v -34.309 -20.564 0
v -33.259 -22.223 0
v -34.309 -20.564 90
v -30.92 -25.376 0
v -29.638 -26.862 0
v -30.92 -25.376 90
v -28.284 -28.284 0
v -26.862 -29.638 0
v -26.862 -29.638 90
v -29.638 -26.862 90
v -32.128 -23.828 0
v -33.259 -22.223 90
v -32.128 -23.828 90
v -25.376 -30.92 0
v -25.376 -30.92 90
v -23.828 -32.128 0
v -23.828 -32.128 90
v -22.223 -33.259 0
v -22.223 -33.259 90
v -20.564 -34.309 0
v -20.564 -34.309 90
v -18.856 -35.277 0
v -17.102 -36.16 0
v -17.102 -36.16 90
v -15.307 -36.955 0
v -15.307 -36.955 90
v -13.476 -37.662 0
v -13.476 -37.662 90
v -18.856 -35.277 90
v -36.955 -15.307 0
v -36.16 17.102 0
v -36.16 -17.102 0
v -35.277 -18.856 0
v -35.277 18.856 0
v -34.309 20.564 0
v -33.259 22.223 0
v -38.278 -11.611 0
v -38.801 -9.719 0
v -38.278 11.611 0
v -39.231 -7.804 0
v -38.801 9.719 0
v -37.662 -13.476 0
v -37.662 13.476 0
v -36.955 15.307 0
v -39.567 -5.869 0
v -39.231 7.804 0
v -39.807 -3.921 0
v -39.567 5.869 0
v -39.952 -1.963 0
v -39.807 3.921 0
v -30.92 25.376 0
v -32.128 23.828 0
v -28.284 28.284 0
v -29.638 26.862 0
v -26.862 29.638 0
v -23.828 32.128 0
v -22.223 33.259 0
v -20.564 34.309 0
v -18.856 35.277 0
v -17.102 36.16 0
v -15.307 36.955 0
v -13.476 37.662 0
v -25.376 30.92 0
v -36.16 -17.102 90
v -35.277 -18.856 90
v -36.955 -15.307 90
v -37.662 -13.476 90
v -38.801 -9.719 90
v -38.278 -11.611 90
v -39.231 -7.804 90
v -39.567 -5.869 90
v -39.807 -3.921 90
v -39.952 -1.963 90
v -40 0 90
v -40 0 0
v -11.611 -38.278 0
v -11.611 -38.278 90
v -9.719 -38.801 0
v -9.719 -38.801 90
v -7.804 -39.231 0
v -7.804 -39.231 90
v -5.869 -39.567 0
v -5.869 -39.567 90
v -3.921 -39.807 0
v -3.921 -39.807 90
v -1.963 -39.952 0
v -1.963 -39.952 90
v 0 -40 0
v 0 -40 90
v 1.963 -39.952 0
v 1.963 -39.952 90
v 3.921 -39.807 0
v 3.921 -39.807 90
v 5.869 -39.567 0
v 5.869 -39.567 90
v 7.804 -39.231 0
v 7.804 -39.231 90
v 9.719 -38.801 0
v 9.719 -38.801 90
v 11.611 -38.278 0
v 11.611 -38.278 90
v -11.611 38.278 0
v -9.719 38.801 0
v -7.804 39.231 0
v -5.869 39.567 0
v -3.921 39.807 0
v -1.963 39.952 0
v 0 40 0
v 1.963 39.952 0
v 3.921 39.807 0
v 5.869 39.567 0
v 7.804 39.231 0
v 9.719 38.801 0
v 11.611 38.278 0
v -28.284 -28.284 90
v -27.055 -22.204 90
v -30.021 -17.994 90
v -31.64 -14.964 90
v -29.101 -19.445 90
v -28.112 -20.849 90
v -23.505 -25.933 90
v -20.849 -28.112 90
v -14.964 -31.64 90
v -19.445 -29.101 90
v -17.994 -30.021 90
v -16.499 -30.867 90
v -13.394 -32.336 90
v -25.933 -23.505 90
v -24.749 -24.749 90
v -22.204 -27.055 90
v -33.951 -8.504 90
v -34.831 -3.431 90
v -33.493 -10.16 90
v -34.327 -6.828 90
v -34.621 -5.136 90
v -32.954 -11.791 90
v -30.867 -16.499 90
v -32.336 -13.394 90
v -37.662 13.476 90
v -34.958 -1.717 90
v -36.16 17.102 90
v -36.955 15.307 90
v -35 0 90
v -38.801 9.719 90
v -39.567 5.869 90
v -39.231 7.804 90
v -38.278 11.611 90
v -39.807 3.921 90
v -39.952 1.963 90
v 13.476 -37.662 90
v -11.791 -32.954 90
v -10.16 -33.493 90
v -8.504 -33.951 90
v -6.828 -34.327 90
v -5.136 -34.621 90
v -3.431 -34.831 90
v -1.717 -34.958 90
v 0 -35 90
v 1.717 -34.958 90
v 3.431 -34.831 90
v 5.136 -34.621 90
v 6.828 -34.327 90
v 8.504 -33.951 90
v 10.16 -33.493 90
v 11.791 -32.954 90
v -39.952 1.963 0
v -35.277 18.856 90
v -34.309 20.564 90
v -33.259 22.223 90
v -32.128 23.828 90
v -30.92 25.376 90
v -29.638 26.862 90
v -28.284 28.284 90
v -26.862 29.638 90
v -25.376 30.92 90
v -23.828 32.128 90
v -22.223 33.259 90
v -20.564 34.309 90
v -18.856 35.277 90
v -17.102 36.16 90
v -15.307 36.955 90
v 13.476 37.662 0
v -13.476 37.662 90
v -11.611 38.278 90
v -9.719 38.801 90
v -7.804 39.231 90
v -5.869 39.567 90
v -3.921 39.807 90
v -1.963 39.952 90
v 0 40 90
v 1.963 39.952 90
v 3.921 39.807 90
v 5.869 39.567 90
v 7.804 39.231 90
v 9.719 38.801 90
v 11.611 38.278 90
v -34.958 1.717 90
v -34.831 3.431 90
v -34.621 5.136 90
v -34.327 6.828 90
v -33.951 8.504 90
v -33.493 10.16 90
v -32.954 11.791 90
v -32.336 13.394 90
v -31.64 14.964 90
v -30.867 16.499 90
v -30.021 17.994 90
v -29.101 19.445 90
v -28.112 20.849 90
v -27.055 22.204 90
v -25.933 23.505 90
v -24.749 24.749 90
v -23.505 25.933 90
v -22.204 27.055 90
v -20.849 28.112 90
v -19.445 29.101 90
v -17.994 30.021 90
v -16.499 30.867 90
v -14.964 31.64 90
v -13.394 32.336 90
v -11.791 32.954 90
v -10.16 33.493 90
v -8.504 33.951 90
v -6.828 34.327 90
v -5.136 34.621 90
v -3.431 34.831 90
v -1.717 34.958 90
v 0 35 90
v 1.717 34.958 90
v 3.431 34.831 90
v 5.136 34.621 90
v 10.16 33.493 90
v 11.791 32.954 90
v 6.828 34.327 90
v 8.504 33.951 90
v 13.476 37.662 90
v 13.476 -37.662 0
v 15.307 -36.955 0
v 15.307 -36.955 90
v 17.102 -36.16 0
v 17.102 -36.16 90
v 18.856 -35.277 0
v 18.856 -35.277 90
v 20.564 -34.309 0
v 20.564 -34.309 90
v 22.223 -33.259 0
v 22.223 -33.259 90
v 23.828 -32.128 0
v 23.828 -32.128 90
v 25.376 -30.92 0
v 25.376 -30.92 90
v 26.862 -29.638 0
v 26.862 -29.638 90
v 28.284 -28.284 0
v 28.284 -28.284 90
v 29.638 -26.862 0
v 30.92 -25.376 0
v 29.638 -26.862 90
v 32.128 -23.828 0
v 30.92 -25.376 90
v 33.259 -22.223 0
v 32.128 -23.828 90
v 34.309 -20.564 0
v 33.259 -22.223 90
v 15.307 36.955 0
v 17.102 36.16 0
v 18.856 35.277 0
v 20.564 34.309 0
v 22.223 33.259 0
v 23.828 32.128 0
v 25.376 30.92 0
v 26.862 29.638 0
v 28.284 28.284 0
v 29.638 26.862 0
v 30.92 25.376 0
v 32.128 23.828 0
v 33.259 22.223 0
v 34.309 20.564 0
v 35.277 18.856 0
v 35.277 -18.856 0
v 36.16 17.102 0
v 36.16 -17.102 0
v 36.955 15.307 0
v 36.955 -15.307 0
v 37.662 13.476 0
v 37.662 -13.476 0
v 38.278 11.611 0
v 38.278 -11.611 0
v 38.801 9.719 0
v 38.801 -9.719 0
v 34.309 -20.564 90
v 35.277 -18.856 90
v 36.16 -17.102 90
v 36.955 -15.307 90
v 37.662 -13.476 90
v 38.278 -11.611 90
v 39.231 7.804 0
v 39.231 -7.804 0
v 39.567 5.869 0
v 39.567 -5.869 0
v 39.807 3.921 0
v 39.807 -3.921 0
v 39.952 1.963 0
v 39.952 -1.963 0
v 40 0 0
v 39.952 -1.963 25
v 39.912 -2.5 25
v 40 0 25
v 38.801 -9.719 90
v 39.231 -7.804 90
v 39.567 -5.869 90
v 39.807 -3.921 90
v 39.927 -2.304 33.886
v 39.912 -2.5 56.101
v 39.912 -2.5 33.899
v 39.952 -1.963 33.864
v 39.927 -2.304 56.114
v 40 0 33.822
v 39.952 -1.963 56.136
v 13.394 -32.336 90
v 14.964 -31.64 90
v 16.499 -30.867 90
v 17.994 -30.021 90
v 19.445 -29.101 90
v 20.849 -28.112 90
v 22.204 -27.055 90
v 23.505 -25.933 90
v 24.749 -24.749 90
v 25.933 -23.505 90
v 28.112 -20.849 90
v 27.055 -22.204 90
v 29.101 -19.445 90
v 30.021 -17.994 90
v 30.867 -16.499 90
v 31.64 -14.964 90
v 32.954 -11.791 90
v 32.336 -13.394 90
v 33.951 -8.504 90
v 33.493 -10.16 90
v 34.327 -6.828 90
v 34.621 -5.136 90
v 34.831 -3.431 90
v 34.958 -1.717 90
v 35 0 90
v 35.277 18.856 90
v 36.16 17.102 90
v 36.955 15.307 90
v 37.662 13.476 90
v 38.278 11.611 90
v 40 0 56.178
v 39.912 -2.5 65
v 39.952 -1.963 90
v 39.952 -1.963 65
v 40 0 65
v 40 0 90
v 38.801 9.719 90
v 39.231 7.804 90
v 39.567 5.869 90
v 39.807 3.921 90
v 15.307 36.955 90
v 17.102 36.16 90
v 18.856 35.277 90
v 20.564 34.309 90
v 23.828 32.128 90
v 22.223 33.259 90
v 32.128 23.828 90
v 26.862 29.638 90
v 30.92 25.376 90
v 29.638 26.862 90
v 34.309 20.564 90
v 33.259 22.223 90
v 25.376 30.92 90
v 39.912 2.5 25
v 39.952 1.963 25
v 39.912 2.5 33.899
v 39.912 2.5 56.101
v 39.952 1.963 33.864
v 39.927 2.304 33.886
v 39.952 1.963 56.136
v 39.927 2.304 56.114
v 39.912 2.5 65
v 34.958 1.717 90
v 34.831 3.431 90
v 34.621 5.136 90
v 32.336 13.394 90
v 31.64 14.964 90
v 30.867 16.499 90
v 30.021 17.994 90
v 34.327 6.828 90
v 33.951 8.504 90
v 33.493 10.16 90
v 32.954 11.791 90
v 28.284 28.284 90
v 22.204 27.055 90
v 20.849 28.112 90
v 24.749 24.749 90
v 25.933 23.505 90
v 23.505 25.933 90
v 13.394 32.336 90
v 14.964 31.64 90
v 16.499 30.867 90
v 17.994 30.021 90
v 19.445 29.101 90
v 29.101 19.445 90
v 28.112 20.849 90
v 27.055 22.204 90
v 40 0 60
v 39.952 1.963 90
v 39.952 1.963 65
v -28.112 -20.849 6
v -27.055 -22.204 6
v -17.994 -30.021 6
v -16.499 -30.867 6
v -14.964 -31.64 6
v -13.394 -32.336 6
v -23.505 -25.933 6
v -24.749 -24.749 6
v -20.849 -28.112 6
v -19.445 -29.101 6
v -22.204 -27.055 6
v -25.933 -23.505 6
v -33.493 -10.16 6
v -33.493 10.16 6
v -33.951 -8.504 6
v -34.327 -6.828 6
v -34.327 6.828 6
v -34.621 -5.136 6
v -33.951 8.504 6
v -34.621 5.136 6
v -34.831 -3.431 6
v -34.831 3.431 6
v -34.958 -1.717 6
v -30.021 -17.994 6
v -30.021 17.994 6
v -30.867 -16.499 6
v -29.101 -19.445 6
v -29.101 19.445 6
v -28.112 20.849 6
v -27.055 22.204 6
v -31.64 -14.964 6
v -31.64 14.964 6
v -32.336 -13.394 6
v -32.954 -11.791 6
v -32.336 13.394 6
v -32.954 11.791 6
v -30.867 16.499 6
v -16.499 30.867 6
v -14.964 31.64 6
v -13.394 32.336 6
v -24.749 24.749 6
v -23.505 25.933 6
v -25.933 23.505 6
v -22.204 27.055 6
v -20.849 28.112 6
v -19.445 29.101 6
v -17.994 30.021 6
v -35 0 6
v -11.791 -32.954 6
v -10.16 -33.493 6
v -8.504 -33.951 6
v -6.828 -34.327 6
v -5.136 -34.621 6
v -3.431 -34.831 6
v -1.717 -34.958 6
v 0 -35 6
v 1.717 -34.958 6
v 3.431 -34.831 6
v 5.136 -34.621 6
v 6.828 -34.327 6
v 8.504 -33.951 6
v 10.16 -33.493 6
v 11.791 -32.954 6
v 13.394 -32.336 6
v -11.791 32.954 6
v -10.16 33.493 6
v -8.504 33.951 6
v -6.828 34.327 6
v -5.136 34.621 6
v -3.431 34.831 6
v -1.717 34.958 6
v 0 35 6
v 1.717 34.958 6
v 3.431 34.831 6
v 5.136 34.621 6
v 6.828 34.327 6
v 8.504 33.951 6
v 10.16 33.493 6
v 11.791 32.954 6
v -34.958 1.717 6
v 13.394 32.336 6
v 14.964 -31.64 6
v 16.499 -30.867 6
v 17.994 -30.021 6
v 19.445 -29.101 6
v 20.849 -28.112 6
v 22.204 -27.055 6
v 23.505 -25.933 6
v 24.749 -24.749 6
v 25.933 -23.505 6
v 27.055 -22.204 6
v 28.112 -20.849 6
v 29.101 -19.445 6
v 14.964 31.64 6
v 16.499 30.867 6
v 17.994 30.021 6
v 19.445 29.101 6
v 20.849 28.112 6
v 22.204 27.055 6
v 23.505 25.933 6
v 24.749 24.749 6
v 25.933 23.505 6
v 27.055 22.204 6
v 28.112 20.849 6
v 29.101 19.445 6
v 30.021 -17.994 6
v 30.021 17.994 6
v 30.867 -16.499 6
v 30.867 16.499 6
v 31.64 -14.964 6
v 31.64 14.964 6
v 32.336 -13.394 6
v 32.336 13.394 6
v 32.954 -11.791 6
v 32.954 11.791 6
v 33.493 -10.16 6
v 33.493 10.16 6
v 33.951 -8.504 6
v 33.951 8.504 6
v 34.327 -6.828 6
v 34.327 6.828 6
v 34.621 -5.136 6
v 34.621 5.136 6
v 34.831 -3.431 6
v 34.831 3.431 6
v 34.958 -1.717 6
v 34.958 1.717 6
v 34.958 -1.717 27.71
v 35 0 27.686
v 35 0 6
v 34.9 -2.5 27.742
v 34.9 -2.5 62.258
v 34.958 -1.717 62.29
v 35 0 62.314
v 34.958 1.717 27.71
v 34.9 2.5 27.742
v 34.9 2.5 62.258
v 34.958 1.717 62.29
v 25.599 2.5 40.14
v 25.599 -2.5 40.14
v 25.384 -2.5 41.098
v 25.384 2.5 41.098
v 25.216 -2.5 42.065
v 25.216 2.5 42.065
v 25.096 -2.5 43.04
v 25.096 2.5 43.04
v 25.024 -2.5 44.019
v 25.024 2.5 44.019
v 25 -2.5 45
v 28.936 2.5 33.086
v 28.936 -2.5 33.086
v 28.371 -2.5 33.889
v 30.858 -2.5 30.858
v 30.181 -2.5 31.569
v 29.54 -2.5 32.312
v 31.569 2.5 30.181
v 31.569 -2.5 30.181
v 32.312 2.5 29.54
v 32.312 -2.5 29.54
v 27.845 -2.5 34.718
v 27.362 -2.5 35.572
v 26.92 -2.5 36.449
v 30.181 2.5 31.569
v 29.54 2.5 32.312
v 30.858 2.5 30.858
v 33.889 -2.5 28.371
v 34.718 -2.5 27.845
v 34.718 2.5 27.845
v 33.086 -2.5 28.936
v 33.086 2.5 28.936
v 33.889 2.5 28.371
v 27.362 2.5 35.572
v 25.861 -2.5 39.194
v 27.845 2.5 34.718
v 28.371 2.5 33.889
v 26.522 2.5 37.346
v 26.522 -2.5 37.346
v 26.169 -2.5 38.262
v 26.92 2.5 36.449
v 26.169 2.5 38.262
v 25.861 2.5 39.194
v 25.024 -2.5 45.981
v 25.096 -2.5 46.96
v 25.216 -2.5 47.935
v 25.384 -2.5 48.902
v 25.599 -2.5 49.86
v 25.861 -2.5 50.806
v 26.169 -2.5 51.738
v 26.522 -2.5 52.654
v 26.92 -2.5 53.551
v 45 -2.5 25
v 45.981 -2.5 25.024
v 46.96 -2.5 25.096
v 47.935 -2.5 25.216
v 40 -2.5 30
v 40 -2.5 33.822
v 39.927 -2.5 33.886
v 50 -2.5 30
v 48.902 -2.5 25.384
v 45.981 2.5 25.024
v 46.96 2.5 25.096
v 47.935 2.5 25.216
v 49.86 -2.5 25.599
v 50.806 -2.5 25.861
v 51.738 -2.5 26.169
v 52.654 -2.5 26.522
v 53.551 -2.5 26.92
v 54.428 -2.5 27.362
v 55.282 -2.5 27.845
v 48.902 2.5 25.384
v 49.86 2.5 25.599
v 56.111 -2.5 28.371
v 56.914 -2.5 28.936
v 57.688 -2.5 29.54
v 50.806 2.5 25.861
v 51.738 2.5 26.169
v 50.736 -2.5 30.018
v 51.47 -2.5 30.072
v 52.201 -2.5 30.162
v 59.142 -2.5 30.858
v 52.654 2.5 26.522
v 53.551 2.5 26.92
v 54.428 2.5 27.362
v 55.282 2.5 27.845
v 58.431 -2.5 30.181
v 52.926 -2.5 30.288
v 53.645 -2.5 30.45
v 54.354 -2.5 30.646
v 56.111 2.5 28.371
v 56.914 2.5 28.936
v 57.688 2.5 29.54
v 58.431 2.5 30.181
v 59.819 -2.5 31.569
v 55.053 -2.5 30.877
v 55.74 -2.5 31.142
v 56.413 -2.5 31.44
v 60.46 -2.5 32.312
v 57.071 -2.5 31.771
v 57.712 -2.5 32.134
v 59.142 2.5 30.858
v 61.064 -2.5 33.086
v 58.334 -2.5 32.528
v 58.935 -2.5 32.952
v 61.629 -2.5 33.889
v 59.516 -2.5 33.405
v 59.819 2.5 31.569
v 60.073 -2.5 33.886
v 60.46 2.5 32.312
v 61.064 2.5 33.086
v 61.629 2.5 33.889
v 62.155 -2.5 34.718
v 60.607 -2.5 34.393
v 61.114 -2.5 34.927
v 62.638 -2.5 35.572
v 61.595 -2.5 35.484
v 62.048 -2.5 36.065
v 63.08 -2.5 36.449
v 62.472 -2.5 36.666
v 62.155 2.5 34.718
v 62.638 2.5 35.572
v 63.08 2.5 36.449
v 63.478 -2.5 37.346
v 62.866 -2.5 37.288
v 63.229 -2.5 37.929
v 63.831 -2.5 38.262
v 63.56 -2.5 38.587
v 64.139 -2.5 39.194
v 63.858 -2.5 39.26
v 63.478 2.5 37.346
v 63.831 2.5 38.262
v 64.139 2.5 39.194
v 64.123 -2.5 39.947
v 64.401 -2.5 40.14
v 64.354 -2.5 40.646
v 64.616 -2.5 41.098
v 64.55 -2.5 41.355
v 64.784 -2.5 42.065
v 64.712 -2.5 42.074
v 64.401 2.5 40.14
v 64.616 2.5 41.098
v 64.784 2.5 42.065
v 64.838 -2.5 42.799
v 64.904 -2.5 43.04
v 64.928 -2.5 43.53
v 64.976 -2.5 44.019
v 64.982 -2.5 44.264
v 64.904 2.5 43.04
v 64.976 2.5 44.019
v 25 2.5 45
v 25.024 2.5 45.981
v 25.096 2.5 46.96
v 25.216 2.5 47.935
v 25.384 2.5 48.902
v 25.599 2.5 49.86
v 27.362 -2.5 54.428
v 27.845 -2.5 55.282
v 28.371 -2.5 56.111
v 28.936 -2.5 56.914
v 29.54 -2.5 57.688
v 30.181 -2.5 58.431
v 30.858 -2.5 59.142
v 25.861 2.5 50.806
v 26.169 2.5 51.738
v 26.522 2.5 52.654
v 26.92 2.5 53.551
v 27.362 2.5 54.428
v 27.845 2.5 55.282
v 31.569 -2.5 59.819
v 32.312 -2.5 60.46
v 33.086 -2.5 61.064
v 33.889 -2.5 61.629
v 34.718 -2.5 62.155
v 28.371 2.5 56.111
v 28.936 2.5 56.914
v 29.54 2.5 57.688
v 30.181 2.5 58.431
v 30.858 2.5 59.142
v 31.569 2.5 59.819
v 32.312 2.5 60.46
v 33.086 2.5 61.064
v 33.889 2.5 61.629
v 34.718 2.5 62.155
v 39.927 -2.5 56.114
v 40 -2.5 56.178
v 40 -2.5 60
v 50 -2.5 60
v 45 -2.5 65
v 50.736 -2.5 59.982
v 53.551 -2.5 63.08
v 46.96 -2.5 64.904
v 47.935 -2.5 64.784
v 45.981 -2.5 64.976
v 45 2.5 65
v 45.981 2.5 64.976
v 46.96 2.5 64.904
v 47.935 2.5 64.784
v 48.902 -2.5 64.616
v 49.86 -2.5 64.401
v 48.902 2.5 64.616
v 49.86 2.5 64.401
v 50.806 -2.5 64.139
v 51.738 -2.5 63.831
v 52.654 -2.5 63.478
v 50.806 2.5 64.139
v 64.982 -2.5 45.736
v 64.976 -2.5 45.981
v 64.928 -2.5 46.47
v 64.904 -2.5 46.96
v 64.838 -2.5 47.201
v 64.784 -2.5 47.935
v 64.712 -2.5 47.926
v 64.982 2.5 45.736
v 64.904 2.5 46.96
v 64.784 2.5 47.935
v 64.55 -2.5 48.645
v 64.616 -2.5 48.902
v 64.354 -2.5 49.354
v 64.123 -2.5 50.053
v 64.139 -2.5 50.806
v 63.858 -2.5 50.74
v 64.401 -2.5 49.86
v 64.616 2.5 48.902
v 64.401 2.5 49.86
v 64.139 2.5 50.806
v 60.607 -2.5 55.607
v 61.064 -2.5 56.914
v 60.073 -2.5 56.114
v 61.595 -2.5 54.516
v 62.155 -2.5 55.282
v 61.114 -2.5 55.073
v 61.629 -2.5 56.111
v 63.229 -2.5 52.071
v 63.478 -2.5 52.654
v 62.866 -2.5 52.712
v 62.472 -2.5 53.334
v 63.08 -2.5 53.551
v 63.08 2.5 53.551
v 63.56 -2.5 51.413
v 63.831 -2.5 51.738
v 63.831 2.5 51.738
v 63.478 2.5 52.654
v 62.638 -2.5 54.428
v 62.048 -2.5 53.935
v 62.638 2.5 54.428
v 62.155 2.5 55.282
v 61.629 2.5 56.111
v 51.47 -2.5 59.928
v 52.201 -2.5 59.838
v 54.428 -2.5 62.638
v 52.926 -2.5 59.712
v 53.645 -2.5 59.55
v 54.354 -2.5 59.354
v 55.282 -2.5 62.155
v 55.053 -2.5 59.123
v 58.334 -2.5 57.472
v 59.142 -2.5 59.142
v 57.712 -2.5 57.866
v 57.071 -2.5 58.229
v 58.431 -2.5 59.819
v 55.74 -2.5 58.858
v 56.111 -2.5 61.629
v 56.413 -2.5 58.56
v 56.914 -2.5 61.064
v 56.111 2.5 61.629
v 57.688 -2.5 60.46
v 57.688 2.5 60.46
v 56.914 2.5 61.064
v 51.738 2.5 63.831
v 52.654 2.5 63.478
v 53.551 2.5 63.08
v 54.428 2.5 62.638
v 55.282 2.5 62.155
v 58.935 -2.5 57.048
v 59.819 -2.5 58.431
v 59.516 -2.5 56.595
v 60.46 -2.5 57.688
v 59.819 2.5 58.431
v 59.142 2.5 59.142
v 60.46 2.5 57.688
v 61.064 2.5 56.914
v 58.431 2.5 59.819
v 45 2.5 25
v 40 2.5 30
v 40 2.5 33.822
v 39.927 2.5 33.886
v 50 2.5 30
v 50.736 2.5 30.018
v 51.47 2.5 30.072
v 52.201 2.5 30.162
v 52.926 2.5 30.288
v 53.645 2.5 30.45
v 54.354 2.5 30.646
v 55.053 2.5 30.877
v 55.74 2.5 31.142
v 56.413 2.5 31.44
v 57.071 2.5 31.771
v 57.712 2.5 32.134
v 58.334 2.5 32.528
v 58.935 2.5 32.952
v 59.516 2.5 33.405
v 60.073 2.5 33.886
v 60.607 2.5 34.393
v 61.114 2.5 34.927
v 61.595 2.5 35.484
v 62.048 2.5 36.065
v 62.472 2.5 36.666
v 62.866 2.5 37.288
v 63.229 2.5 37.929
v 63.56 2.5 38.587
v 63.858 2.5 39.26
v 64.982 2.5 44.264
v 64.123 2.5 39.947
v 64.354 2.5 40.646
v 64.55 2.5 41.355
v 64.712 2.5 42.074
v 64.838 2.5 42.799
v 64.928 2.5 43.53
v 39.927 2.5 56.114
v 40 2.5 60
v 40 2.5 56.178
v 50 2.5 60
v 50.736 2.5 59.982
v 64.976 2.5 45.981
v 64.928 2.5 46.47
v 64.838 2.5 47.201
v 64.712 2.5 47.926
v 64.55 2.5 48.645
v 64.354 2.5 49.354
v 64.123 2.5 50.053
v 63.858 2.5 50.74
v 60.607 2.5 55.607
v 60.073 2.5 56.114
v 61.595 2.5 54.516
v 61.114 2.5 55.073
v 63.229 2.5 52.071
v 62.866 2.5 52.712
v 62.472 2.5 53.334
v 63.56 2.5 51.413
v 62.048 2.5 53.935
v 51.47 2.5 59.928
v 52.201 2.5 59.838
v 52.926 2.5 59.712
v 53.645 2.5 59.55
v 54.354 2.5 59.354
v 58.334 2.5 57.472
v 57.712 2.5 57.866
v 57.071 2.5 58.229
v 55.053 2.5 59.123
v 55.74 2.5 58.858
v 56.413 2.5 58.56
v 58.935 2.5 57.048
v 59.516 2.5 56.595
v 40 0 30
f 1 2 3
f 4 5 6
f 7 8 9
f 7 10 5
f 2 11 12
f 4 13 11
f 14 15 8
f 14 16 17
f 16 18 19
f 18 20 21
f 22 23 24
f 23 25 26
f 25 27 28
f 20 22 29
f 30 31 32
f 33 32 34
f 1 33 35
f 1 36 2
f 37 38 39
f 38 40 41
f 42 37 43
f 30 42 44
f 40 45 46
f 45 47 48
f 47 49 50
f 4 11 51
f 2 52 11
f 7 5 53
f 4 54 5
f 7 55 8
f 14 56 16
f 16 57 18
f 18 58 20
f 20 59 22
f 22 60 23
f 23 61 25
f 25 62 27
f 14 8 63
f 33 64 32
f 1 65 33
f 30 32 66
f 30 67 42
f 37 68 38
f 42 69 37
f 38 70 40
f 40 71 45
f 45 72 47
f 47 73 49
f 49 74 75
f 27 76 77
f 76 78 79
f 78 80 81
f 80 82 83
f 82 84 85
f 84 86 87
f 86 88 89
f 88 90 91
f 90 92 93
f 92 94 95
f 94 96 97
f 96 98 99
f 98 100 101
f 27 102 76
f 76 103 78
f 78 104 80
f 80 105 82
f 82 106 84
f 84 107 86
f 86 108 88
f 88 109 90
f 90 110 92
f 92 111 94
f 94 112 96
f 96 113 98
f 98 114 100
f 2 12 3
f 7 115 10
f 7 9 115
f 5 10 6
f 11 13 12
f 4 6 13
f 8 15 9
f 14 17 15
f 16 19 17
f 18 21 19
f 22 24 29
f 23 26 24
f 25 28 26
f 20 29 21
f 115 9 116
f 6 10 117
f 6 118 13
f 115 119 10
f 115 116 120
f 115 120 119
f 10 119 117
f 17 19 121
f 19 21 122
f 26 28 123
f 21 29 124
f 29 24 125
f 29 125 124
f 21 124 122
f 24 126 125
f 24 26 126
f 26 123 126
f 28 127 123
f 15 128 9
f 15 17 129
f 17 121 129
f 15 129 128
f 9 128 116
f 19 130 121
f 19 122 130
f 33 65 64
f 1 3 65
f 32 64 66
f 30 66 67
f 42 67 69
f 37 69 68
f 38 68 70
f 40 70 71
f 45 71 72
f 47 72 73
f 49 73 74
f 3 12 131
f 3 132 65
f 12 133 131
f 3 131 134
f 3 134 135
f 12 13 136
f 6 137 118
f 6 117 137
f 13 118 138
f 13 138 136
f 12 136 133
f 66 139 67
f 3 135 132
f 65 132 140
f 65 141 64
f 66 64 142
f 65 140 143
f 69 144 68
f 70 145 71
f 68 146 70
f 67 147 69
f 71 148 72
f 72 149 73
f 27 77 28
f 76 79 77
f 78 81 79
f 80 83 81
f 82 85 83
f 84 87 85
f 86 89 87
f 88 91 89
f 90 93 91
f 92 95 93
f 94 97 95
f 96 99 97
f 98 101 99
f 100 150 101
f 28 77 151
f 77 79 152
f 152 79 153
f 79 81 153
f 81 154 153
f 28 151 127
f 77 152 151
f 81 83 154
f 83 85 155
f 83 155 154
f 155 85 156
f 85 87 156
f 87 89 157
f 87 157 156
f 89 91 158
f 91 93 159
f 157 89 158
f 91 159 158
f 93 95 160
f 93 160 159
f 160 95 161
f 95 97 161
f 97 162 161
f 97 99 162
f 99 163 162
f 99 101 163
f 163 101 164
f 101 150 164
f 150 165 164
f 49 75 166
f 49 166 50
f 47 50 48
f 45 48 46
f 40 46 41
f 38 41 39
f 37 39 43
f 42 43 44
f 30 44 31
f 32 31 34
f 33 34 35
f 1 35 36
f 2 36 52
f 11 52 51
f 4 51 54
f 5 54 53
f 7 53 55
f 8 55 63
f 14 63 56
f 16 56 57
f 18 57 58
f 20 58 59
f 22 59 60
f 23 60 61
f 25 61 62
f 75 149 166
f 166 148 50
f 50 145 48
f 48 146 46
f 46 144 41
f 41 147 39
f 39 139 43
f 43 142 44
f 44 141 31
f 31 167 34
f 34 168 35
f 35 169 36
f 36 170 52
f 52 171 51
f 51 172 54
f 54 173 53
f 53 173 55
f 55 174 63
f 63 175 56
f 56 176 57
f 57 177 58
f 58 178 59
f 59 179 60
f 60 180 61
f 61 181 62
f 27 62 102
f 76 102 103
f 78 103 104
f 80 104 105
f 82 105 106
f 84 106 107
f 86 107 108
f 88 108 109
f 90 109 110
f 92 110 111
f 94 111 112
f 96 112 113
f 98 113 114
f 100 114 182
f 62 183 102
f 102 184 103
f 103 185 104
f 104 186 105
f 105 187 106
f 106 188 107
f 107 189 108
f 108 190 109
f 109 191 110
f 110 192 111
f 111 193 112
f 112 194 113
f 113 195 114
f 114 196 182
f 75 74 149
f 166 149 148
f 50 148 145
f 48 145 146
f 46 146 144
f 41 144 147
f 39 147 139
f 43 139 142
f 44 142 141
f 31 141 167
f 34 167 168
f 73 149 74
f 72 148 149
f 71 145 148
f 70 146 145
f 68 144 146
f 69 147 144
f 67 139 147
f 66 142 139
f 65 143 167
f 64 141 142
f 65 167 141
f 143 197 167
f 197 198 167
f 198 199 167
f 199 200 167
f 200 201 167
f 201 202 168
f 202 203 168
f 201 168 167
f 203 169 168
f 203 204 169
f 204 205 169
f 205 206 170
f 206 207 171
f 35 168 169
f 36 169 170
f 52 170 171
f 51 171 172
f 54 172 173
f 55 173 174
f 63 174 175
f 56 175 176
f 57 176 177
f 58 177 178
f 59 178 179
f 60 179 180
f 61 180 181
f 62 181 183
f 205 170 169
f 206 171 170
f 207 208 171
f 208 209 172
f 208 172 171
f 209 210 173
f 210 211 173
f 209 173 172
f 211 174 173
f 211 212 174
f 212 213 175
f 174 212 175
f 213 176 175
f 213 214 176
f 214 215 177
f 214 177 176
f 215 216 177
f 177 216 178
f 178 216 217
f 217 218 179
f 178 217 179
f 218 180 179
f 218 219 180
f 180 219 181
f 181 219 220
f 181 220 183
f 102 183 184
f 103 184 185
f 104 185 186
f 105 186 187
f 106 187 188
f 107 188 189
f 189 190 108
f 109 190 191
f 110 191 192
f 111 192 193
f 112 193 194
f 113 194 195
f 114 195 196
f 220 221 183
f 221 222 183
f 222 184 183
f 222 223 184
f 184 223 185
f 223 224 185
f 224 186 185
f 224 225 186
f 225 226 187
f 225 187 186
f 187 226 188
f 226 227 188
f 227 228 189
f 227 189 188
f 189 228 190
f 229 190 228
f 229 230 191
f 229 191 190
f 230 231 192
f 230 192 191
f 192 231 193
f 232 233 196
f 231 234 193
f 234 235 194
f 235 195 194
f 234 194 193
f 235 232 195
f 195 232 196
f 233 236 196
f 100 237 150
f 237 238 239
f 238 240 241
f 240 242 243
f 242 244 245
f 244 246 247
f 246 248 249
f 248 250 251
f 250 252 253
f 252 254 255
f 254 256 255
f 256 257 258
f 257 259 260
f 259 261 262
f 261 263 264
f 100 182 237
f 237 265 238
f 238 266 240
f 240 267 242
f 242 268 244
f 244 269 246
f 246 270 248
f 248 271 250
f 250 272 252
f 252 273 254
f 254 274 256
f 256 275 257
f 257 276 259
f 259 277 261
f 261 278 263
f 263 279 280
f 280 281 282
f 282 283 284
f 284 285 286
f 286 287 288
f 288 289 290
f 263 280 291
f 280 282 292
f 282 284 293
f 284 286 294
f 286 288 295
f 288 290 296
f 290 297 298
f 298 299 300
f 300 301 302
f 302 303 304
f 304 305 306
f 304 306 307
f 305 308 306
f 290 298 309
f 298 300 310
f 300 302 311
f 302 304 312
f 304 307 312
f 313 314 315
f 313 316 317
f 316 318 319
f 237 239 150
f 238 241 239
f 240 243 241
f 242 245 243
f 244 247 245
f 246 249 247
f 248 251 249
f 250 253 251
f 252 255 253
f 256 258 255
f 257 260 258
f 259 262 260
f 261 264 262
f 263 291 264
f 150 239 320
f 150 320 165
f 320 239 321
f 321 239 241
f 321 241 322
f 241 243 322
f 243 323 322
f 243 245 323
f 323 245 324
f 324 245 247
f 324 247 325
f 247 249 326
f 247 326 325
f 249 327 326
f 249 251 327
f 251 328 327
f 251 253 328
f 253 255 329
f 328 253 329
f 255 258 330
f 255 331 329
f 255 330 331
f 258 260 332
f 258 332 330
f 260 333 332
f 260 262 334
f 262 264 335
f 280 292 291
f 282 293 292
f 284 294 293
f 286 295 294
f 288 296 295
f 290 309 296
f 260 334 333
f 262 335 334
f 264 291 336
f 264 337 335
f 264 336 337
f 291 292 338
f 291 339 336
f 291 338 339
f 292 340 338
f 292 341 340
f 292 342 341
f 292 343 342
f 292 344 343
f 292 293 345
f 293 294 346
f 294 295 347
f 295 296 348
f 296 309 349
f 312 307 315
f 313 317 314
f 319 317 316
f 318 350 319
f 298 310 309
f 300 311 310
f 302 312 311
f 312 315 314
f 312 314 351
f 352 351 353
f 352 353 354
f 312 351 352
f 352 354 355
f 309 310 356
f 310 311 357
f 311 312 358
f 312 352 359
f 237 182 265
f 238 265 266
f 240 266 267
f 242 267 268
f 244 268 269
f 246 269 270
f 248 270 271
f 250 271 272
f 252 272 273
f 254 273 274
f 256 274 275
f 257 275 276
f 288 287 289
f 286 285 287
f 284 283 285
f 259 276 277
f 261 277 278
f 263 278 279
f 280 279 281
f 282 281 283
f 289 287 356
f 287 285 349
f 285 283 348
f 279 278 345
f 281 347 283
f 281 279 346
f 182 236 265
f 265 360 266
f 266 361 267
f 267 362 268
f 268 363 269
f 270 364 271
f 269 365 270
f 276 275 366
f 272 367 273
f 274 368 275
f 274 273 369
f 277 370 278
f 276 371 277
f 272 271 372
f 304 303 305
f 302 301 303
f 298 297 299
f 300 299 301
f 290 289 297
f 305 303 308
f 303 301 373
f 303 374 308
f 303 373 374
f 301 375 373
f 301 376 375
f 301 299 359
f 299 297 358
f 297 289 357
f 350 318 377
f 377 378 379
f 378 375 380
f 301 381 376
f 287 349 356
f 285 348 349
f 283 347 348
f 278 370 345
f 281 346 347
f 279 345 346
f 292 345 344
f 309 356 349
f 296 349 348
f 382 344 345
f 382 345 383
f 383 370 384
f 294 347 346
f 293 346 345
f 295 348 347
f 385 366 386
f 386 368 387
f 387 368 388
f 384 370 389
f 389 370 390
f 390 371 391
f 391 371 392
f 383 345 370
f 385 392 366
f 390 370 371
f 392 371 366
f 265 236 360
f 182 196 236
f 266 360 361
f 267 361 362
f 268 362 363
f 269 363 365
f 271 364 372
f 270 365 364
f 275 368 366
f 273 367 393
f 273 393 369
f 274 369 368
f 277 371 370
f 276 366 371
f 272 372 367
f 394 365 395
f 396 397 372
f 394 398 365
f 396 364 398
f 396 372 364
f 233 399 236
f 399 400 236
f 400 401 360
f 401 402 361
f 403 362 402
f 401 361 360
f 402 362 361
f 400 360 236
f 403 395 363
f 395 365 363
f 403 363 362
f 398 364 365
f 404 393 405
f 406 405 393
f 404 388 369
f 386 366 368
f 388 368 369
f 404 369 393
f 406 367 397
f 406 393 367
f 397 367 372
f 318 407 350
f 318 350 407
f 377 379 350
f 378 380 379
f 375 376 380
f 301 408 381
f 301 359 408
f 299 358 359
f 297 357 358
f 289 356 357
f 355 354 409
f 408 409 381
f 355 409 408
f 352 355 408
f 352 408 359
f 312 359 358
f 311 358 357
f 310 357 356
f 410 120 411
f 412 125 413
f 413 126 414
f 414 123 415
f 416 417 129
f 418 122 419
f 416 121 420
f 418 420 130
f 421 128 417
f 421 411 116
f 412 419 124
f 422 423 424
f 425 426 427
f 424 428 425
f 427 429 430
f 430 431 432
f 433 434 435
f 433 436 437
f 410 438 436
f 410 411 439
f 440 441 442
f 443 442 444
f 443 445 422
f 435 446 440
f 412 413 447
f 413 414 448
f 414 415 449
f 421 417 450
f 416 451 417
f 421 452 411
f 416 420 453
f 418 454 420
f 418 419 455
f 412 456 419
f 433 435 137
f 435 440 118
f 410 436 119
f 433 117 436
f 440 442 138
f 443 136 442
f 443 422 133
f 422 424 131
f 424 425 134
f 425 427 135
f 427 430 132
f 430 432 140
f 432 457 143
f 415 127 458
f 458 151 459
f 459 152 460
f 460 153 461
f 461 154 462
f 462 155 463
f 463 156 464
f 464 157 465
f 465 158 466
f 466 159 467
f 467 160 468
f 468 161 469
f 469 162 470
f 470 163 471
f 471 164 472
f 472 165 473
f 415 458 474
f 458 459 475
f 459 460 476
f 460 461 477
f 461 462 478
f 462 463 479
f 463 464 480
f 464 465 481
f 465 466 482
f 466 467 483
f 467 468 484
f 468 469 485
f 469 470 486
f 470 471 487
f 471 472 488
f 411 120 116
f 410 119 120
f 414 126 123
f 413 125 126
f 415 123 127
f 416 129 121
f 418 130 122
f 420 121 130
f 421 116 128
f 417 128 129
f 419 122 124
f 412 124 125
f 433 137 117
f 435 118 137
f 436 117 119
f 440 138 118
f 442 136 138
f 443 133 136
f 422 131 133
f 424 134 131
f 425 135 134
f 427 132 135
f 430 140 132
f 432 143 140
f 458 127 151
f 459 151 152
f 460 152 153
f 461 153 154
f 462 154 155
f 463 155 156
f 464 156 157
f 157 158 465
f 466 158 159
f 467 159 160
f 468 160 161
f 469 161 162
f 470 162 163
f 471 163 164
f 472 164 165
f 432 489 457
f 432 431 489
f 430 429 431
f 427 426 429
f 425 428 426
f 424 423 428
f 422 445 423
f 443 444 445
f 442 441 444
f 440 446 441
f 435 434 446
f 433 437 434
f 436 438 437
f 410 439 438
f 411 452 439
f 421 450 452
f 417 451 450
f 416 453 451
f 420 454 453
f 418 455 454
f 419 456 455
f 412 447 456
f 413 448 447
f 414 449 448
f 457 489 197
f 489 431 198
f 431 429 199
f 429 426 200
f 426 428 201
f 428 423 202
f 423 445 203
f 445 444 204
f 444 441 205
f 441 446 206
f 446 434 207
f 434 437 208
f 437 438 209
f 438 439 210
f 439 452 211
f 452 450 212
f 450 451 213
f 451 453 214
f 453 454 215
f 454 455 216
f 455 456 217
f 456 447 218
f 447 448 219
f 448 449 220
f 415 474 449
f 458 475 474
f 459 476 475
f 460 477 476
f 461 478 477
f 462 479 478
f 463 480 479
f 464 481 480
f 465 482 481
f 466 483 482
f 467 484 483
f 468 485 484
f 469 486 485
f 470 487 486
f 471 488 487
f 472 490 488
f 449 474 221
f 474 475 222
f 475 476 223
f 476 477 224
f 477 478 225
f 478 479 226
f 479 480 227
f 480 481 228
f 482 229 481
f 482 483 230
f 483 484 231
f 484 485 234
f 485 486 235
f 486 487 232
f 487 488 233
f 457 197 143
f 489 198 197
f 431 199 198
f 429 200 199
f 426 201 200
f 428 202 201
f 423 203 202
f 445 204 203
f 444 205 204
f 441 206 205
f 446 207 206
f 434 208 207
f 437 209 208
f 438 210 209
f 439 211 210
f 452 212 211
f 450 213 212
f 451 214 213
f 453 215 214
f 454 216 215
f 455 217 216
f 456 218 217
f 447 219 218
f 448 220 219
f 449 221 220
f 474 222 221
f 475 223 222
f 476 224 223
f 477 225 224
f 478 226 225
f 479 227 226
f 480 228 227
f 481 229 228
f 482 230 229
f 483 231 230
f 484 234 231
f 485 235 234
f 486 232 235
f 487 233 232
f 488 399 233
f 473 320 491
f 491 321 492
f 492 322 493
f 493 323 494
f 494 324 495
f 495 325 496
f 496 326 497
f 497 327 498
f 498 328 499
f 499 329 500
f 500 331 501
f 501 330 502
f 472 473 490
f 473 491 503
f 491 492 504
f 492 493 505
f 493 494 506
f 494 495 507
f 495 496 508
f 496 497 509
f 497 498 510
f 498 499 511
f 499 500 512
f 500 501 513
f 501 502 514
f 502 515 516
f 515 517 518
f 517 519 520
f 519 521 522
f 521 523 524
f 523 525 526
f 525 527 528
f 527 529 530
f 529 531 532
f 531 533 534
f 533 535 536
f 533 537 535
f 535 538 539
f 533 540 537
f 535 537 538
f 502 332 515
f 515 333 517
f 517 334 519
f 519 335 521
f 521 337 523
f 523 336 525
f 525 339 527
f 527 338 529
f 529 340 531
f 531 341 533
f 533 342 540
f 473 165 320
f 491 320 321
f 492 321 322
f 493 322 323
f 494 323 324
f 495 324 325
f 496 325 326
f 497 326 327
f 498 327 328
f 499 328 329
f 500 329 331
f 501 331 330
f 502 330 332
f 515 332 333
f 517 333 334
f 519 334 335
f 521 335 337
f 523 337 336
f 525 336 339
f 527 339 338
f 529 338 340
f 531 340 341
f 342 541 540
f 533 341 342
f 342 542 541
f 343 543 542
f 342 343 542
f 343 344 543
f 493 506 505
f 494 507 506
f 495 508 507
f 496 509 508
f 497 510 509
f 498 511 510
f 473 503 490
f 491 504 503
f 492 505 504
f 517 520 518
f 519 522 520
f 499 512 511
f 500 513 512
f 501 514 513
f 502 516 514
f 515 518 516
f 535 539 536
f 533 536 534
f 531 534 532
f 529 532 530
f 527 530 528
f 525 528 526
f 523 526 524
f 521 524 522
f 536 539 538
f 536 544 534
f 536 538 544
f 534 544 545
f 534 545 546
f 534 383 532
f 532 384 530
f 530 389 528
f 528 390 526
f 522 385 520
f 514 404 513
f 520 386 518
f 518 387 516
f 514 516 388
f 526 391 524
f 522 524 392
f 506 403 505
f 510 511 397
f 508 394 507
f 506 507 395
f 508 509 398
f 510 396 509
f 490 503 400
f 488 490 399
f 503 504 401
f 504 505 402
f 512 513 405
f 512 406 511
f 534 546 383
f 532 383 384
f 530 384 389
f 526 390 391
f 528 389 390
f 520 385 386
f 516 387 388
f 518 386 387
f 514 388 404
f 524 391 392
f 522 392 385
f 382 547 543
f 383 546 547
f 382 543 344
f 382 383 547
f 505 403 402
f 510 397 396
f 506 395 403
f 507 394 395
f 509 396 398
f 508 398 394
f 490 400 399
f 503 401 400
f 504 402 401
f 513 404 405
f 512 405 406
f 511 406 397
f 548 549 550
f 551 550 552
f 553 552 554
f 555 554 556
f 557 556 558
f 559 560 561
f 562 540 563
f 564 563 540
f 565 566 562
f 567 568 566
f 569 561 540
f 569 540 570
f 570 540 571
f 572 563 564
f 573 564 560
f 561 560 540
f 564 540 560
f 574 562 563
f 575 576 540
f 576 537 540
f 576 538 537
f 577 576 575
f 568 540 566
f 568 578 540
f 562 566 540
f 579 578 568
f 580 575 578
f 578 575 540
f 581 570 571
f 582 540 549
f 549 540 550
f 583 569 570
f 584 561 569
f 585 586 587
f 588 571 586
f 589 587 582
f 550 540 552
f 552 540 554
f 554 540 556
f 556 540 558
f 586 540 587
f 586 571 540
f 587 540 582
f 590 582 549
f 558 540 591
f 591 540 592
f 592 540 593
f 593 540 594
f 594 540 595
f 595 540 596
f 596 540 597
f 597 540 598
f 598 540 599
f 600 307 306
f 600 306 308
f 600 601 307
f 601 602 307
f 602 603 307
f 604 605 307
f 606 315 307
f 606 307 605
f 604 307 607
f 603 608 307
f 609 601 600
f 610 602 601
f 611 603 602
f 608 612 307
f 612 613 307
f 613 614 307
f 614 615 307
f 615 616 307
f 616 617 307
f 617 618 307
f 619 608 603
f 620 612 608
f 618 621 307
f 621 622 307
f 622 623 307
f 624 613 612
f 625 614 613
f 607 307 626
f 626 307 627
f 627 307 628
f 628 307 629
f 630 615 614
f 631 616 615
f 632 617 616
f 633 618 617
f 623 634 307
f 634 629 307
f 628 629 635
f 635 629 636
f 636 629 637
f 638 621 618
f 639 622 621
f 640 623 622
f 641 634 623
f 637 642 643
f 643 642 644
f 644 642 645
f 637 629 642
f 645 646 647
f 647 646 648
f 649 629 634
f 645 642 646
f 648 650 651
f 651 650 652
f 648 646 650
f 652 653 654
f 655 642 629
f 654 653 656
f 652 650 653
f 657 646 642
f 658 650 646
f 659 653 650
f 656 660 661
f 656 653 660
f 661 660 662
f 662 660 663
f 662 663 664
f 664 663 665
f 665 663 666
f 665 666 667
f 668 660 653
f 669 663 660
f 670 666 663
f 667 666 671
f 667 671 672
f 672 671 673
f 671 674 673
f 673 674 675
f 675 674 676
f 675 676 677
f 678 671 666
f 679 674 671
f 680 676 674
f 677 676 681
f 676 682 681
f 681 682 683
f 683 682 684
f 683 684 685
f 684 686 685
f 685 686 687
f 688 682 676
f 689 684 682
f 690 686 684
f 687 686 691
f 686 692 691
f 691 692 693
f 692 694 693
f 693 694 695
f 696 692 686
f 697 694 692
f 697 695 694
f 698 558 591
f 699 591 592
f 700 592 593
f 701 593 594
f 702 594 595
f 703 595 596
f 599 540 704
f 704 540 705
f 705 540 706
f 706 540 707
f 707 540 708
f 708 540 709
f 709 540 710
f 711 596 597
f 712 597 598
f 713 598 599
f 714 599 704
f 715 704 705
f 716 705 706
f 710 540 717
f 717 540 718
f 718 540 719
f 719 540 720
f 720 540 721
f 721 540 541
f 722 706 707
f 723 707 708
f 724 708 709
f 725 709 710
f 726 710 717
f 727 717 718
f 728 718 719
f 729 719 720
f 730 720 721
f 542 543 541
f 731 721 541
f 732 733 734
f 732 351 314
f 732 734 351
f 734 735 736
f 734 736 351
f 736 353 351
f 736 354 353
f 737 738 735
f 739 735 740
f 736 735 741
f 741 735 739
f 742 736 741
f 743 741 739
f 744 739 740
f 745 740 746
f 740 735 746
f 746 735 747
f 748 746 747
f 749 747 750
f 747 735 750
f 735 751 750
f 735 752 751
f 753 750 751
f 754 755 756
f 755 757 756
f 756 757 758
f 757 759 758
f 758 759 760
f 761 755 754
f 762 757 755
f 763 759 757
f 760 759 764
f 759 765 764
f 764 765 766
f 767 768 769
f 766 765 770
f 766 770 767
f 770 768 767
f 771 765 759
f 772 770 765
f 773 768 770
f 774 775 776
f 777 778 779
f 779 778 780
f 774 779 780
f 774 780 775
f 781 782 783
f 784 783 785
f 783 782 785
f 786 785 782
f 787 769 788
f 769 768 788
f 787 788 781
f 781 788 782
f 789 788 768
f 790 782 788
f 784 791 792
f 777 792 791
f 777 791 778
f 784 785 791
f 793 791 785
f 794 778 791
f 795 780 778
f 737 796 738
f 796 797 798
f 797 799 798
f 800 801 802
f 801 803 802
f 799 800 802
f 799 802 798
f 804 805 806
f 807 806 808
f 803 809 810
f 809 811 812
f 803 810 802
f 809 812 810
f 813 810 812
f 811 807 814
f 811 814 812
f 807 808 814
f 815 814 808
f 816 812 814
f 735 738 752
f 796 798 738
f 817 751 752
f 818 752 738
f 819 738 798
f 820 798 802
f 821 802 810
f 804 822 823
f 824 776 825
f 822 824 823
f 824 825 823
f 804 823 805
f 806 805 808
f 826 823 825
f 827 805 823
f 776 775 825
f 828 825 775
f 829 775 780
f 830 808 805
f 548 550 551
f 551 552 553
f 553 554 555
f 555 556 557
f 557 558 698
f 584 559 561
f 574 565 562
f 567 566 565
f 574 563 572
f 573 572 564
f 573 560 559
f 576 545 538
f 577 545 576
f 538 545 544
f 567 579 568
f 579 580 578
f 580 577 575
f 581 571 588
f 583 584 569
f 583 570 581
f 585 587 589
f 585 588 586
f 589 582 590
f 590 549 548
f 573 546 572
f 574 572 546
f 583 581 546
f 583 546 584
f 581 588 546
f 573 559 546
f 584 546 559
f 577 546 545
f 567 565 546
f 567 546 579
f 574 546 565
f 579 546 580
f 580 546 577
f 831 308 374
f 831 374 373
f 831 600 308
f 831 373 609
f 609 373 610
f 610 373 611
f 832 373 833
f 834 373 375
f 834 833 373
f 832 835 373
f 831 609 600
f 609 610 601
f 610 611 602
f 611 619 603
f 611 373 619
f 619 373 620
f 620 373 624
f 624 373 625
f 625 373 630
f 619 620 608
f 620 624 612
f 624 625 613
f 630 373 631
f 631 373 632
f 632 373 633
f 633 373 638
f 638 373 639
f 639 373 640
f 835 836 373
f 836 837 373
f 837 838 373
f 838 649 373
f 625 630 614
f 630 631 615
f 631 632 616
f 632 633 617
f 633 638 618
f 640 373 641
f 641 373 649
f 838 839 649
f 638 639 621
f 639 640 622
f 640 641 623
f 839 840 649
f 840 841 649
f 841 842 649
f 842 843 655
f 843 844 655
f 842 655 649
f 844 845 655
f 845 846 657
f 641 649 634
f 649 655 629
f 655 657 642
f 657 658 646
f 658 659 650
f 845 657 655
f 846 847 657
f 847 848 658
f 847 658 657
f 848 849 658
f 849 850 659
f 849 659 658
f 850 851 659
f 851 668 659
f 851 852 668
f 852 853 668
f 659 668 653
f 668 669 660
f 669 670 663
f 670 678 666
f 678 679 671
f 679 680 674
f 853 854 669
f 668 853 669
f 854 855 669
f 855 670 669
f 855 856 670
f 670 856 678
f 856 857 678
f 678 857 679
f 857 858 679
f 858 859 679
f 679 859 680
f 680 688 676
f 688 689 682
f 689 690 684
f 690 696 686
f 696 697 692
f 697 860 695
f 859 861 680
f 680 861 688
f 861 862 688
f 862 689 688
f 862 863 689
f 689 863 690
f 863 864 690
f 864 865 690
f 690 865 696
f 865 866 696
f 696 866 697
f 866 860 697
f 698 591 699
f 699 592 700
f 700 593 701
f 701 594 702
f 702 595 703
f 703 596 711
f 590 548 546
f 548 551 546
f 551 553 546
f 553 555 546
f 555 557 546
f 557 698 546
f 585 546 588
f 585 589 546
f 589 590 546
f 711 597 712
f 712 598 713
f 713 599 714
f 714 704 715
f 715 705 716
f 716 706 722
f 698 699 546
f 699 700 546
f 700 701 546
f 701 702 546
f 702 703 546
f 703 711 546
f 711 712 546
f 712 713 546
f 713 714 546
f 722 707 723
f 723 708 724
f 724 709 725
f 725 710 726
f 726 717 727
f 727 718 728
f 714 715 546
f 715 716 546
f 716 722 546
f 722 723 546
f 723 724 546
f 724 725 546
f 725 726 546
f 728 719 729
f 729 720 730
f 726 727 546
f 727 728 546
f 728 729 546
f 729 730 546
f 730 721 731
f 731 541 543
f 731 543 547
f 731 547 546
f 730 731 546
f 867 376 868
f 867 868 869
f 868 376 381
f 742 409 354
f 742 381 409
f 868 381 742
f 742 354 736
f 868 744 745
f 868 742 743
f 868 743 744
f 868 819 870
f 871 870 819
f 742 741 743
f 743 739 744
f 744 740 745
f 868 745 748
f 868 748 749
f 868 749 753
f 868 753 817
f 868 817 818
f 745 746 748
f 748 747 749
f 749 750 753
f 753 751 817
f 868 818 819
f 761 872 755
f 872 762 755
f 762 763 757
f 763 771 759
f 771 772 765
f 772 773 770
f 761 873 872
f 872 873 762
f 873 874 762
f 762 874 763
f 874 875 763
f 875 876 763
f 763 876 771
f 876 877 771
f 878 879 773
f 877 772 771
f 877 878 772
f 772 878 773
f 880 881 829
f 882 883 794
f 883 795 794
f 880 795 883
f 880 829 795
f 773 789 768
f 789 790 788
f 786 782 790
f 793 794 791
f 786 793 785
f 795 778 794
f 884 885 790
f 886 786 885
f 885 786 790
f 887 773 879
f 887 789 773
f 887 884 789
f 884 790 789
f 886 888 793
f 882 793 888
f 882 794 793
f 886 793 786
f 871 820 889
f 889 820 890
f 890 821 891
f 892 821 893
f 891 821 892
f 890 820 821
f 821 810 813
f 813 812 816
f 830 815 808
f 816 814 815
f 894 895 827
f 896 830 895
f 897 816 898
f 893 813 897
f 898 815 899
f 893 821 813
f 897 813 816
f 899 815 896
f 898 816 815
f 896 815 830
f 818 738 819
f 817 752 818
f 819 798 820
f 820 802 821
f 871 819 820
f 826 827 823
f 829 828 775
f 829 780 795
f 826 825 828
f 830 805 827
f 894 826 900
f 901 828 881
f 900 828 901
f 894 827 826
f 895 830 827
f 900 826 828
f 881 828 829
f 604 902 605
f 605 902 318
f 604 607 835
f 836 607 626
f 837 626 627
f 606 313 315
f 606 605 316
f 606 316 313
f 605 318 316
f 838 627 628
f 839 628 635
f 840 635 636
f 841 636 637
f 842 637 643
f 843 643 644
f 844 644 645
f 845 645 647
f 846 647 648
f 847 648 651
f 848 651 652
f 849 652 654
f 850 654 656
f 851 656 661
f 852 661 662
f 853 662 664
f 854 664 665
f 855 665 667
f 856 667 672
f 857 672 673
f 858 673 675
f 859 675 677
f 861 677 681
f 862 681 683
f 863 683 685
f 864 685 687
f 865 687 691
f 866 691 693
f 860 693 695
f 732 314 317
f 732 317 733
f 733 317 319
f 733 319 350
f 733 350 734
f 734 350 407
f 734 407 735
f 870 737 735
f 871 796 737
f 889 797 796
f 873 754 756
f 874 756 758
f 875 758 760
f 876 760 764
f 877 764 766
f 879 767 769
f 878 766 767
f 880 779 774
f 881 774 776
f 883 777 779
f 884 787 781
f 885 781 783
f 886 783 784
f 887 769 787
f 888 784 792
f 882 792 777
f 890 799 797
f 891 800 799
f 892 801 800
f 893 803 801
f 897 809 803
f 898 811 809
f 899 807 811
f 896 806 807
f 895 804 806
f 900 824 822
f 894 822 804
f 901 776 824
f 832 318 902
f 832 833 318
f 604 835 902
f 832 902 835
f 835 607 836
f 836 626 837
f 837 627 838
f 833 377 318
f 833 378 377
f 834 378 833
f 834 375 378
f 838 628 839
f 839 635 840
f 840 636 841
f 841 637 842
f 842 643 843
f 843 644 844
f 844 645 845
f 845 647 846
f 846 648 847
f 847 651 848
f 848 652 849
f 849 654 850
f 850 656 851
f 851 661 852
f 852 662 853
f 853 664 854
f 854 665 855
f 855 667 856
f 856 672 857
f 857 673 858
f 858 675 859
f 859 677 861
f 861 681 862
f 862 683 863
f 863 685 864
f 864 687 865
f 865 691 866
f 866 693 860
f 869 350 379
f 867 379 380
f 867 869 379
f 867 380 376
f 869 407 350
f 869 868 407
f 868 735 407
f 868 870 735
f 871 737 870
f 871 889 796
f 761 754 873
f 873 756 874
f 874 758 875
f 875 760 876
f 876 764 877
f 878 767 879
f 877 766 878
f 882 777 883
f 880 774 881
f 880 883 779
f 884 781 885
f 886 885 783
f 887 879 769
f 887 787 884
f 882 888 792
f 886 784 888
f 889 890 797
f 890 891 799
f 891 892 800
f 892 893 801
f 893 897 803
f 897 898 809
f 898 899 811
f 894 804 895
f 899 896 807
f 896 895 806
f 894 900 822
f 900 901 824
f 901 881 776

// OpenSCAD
$fn = 128;

// Mug dimensions
outer_d   = 80;
inner_d   = 70;
mug_h     = 90;
bottom_t  = 6;

// Handle opening (clear space)
handle_open_w = 25;   // width in radial direction
handle_open_h = 30;   // height in Z direction

// Handle thickness / depth
handle_t = 5;         // band thickness and Y extrusion thickness

// Derived
outer_r = outer_d / 2;
inner_r = inner_d / 2;

handle_outer_h = handle_open_h + 2 * handle_t;   // 40
handle_outer_w = handle_open_w + handle_t;       // 30
handle_center_z = mug_h / 2;

// 2D D-shape with flat side on the left, round side on the right
module d_shape_2d(total_w, total_h) {
    r = total_h / 2;
    rect_w = total_w - r;
    union() {
        translate([0, -r])
            square([rect_w, total_h], center = false);
        translate([rect_w, 0])
            circle(r = r);
    }
}

module mug_body() {
    difference() {
        cylinder(h = mug_h, r = outer_r);
        translate([0, 0, bottom_t])
            cylinder(h = mug_h - bottom_t + 0.01, r = inner_r);
    }
}

module handle() {
    // Put the D shape in XZ plane and extrude along Y.
    // Flat side intersects the mug body to guarantee a solid manifold union.
    translate([outer_r - handle_t, 0, handle_center_z])
    rotate([90, 0, 0])
    difference() {
        linear_extrude(height = handle_t, center = true)
            d_shape_2d(handle_outer_w, handle_outer_h);

        translate([handle_t, 0, 0])
            linear_extrude(height = handle_t + 2, center = true)
                d_shape_2d(handle_open_w, handle_open_h);
    }
}

union() {
    mug_body();
    handle();
}
